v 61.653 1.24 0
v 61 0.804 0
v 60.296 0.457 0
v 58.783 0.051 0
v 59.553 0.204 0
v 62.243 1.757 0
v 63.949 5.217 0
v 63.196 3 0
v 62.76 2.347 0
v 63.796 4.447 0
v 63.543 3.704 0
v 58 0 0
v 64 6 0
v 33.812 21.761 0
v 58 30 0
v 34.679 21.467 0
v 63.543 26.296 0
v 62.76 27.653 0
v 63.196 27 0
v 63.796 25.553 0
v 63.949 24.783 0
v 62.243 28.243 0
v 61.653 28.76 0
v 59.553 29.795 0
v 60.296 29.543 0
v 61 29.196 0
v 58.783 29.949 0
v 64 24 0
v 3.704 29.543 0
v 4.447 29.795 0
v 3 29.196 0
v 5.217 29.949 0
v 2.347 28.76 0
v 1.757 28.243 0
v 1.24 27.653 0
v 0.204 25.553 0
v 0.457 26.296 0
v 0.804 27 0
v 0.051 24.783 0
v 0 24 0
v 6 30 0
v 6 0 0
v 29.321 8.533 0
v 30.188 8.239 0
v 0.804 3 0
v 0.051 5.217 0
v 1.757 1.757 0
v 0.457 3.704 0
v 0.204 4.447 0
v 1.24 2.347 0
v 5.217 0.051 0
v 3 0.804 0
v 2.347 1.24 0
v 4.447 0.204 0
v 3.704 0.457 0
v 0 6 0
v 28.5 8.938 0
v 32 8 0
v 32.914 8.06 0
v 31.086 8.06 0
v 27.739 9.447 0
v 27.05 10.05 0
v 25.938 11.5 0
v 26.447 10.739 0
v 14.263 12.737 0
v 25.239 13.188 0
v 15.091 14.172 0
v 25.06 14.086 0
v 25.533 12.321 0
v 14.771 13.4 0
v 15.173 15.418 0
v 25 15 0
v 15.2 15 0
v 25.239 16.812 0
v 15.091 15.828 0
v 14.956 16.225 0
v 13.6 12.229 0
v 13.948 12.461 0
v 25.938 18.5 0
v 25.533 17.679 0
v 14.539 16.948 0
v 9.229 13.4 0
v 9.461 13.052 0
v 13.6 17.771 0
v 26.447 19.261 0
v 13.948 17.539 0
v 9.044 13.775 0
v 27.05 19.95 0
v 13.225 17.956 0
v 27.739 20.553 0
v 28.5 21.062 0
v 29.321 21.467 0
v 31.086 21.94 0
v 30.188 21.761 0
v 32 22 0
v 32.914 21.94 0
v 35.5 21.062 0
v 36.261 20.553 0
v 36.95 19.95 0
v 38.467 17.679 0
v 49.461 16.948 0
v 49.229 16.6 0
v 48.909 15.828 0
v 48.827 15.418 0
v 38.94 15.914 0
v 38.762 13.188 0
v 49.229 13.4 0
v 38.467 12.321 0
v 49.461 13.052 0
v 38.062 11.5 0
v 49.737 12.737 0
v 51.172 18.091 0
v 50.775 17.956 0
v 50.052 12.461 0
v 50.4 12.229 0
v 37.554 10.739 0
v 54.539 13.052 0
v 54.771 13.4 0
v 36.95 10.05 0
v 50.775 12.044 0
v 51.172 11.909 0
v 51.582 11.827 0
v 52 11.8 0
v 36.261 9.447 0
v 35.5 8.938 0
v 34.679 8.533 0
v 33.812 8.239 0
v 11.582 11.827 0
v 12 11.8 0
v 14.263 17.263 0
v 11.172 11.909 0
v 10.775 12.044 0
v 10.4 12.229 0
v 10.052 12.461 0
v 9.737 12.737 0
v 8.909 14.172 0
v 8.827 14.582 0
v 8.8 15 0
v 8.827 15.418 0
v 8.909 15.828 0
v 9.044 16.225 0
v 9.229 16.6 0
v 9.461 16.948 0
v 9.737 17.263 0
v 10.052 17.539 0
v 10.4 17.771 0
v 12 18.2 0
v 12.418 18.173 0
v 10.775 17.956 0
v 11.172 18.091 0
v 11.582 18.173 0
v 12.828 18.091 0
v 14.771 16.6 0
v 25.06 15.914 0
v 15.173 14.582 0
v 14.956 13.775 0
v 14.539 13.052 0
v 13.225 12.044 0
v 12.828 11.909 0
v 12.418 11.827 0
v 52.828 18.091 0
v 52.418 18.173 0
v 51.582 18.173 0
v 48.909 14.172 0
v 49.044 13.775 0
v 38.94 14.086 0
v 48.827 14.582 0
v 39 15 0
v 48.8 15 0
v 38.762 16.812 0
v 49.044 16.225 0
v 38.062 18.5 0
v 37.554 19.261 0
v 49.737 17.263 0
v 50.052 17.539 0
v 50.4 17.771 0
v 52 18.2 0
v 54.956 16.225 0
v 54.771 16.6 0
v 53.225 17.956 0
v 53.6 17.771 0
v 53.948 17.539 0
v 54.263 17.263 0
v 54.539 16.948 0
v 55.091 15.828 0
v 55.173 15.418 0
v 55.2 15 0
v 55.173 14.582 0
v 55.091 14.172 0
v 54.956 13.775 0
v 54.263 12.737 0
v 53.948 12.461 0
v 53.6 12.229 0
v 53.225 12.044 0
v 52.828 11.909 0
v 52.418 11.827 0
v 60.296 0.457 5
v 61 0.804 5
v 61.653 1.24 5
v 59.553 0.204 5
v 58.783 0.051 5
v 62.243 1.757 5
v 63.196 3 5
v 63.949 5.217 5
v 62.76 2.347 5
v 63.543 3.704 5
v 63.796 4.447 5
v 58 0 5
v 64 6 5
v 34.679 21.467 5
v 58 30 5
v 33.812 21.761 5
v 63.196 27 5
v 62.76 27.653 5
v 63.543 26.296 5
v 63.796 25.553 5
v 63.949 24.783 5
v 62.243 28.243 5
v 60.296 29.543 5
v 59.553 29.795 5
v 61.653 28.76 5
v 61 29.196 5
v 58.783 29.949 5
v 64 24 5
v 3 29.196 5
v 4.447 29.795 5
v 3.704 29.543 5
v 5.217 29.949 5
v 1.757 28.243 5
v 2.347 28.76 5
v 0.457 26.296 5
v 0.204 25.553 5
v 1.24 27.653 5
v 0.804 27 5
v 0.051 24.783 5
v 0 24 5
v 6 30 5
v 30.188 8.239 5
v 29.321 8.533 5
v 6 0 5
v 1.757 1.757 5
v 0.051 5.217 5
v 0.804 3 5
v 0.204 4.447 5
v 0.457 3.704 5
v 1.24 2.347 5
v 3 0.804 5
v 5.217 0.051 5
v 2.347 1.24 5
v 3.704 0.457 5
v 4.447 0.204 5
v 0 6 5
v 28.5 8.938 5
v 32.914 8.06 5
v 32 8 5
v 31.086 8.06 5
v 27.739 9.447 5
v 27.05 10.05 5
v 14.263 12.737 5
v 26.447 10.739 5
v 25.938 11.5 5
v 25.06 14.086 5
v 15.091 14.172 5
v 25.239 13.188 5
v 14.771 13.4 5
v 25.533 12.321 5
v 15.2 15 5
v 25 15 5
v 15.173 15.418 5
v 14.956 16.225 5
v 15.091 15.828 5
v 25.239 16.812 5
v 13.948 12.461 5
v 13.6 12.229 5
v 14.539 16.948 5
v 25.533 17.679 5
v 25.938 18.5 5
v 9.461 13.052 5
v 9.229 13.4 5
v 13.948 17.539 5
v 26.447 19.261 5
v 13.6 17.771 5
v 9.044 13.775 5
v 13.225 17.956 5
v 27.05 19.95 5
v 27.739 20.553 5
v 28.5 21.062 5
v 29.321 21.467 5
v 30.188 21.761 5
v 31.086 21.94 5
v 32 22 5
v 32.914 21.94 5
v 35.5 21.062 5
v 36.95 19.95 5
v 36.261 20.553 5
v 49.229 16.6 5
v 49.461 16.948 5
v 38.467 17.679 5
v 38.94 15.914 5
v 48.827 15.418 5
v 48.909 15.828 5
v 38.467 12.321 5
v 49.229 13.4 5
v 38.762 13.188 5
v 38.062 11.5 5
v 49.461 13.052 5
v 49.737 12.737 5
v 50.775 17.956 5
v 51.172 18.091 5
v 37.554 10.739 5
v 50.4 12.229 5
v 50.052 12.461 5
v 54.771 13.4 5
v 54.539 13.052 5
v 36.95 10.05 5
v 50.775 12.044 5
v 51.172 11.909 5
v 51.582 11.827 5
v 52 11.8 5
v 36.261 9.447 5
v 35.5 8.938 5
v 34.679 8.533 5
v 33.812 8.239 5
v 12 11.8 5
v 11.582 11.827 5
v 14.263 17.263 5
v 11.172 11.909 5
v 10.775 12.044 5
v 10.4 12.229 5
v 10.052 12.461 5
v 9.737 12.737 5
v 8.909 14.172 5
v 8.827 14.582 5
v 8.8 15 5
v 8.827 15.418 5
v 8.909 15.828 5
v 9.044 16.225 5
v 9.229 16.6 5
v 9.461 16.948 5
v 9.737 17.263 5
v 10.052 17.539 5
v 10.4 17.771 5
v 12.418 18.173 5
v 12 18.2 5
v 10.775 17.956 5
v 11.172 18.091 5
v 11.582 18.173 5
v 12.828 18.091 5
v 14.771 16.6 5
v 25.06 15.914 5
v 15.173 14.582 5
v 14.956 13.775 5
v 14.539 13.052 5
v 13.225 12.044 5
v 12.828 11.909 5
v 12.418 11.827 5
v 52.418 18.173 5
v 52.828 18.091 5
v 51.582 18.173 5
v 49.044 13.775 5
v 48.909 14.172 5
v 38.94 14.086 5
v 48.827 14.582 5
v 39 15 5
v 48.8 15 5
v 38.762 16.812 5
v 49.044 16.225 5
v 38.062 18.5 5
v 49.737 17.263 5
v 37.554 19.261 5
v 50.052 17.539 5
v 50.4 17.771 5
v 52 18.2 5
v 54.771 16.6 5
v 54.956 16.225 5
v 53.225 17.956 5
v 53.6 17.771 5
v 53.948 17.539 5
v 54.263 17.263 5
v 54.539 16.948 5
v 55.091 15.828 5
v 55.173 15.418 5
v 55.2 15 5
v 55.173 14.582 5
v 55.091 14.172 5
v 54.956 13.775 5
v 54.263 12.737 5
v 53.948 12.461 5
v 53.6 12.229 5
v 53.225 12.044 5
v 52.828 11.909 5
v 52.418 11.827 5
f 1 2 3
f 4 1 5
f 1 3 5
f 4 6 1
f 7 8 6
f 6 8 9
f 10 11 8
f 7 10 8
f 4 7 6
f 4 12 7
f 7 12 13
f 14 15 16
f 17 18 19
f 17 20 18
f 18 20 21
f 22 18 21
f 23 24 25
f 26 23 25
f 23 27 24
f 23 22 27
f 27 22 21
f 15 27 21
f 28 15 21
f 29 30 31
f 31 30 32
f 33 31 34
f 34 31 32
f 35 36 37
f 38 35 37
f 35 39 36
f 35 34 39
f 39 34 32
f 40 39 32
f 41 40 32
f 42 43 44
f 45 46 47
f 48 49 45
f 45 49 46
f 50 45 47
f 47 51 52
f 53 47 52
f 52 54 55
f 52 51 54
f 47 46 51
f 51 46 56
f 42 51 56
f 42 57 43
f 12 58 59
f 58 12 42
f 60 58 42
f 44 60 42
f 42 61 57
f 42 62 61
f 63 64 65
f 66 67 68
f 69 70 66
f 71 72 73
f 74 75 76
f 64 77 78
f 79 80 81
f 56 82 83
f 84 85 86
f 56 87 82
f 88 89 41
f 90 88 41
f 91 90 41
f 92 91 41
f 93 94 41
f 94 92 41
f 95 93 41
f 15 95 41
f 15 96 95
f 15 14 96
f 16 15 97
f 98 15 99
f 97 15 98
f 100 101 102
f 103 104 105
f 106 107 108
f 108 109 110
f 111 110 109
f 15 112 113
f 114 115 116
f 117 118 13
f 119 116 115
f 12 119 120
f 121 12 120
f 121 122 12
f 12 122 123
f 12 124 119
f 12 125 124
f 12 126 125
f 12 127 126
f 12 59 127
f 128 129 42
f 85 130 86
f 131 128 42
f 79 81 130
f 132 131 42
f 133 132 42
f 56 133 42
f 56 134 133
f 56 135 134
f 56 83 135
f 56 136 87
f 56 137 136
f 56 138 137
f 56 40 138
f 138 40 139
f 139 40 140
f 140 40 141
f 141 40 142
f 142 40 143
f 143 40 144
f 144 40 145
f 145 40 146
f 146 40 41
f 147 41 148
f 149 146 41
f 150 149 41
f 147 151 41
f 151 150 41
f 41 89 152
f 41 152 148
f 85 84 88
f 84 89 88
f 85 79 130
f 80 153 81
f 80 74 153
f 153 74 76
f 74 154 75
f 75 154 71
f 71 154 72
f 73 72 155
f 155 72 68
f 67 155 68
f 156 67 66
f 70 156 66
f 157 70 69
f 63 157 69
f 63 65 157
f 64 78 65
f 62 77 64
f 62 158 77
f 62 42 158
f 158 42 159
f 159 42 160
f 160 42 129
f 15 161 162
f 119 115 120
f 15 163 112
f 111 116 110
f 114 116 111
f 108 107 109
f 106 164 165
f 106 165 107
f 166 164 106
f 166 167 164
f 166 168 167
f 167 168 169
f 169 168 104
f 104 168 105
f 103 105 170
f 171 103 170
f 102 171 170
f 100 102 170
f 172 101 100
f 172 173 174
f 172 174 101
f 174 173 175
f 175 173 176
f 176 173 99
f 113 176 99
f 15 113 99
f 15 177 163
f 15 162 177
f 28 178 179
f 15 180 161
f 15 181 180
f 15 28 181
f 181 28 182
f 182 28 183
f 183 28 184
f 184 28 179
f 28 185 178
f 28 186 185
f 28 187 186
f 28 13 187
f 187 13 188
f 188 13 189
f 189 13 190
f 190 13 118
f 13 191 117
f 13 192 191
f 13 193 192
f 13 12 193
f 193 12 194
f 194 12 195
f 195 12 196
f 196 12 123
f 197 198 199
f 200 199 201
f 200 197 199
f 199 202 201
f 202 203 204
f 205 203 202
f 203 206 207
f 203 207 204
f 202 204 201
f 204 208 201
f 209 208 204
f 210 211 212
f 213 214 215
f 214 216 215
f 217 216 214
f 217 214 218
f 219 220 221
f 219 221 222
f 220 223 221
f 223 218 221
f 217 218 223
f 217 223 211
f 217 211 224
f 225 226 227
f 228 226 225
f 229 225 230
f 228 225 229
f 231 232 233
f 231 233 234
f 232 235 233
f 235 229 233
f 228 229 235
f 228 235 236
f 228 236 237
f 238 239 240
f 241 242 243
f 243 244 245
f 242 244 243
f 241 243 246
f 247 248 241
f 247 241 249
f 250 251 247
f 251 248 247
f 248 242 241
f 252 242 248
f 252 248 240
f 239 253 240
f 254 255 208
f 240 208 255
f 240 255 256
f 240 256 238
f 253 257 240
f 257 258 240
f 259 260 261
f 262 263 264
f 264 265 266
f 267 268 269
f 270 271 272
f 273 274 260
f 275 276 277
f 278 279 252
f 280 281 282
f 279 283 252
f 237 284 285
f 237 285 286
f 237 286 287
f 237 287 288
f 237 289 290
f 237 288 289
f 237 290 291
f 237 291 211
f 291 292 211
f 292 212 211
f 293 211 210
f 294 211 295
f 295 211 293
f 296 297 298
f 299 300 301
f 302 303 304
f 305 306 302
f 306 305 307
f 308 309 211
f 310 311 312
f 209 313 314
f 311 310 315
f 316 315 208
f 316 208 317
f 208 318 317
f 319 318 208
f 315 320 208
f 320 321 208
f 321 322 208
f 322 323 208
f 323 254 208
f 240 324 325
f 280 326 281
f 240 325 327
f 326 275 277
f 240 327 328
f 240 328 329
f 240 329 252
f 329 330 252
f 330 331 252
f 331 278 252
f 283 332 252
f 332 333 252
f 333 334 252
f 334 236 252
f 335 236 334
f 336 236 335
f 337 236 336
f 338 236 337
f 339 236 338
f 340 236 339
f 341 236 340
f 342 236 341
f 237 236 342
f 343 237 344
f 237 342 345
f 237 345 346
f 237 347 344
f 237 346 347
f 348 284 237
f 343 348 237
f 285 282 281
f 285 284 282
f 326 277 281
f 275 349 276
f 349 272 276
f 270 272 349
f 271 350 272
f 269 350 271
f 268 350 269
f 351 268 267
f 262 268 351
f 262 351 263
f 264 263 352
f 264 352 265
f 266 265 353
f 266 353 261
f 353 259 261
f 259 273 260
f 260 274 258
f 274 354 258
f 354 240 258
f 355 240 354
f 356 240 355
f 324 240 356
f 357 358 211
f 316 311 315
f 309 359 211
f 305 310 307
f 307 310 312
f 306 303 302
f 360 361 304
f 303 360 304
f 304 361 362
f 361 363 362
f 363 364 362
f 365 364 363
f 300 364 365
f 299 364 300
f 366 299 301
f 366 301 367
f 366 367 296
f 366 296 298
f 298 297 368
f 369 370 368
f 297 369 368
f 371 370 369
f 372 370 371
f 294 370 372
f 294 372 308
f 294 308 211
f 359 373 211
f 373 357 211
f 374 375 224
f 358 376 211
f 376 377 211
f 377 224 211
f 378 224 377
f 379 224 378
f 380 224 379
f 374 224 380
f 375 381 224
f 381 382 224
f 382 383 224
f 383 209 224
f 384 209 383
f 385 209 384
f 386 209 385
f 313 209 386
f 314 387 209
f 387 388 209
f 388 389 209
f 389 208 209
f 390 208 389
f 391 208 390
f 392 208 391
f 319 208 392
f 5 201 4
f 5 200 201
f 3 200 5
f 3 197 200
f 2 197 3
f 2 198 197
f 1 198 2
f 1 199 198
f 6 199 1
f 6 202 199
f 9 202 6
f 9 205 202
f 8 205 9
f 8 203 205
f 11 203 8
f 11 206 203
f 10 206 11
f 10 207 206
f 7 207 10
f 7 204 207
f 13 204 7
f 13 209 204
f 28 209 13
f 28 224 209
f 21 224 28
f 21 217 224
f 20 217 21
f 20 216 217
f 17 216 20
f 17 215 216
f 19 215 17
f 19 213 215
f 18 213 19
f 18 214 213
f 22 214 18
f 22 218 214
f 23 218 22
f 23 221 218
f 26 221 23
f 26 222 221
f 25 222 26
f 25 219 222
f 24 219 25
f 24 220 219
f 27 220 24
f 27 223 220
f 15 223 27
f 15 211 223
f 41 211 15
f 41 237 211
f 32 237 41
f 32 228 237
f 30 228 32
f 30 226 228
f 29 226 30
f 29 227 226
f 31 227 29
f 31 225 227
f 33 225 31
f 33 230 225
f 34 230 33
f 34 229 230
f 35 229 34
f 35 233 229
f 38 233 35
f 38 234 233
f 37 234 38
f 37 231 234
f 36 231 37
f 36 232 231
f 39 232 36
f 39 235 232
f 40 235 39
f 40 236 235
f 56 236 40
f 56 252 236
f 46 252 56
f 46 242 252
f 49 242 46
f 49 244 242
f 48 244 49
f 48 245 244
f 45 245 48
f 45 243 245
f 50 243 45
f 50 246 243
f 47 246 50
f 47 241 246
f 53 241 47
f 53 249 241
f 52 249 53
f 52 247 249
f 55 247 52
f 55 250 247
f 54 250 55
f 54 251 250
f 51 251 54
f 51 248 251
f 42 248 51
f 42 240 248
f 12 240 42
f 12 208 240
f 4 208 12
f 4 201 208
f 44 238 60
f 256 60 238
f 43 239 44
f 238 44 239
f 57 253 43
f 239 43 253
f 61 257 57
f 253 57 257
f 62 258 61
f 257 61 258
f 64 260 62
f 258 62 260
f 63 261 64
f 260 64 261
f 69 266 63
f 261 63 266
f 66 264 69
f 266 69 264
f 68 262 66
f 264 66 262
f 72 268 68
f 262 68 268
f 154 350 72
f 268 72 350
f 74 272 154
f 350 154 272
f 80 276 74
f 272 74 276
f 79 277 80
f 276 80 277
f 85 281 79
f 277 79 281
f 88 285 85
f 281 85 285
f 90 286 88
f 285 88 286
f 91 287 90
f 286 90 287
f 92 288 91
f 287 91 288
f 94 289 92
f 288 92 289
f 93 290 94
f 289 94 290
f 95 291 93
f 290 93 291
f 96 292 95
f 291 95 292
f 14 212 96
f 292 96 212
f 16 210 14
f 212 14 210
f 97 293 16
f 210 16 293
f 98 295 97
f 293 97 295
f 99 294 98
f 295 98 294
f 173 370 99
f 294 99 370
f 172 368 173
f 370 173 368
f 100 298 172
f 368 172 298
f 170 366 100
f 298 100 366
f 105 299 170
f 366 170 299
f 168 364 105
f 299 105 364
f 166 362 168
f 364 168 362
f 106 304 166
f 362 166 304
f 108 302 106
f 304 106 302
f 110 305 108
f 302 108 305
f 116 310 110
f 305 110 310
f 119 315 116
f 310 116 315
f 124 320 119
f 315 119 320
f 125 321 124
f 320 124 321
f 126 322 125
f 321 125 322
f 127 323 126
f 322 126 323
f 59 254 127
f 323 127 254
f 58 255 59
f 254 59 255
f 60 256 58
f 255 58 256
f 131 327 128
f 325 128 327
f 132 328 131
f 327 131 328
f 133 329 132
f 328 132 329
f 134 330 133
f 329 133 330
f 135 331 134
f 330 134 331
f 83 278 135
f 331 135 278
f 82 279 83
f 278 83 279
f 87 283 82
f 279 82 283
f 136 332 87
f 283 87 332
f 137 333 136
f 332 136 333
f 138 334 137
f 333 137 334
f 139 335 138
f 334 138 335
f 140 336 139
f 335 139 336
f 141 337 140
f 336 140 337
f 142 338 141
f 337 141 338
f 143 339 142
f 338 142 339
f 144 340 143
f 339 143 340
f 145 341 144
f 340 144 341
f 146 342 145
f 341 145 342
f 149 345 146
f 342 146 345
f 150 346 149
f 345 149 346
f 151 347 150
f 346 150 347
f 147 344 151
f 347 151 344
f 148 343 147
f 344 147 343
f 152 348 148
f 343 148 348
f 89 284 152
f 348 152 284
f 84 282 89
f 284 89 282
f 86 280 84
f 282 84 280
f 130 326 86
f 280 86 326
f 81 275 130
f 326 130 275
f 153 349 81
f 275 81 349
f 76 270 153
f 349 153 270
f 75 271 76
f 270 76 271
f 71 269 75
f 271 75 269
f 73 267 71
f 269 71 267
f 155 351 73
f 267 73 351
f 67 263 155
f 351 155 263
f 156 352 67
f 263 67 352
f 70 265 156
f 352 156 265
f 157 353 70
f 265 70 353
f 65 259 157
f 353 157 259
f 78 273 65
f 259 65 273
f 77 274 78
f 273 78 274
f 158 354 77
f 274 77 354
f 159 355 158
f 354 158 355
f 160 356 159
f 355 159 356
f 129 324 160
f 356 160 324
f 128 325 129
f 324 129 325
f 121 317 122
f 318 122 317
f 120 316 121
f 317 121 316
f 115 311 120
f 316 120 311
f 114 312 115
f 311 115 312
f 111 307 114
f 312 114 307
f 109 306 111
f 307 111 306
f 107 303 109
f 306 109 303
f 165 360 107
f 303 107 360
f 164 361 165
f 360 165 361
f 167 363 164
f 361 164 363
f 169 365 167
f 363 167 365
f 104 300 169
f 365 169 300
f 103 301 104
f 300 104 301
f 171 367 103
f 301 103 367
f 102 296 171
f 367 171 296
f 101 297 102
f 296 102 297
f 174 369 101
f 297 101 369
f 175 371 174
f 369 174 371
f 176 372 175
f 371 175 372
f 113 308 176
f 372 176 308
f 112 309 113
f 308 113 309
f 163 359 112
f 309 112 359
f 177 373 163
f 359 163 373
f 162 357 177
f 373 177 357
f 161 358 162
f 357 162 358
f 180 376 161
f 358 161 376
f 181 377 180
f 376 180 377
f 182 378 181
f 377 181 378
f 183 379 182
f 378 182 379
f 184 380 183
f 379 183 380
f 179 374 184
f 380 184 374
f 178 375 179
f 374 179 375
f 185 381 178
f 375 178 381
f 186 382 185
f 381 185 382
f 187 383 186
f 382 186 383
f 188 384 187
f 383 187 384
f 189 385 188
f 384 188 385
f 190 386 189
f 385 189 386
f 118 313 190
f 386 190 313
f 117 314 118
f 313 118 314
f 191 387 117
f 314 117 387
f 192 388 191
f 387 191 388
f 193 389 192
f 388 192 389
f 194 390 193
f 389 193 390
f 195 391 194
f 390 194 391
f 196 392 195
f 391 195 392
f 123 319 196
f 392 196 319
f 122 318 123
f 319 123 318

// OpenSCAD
// Checkpoint 2a - The same bracket rebuilt as a constrained sketch, flat.
// Fillets on the outline are the visible sign it came from a sketch.
$fn = 48;
T = 5;
R = 6;
linear_extrude(T)
  difference() {
    hull() {
      translate([R, R]) circle(R);
      translate([64 - R, R]) circle(R);
      translate([R, 30 - R]) circle(R);
      translate([64 - R, 30 - R]) circle(R);
    }
    for (x = [12, 52]) translate([x, 15]) circle(3.2);
    translate([32, 15]) circle(7);
  }
